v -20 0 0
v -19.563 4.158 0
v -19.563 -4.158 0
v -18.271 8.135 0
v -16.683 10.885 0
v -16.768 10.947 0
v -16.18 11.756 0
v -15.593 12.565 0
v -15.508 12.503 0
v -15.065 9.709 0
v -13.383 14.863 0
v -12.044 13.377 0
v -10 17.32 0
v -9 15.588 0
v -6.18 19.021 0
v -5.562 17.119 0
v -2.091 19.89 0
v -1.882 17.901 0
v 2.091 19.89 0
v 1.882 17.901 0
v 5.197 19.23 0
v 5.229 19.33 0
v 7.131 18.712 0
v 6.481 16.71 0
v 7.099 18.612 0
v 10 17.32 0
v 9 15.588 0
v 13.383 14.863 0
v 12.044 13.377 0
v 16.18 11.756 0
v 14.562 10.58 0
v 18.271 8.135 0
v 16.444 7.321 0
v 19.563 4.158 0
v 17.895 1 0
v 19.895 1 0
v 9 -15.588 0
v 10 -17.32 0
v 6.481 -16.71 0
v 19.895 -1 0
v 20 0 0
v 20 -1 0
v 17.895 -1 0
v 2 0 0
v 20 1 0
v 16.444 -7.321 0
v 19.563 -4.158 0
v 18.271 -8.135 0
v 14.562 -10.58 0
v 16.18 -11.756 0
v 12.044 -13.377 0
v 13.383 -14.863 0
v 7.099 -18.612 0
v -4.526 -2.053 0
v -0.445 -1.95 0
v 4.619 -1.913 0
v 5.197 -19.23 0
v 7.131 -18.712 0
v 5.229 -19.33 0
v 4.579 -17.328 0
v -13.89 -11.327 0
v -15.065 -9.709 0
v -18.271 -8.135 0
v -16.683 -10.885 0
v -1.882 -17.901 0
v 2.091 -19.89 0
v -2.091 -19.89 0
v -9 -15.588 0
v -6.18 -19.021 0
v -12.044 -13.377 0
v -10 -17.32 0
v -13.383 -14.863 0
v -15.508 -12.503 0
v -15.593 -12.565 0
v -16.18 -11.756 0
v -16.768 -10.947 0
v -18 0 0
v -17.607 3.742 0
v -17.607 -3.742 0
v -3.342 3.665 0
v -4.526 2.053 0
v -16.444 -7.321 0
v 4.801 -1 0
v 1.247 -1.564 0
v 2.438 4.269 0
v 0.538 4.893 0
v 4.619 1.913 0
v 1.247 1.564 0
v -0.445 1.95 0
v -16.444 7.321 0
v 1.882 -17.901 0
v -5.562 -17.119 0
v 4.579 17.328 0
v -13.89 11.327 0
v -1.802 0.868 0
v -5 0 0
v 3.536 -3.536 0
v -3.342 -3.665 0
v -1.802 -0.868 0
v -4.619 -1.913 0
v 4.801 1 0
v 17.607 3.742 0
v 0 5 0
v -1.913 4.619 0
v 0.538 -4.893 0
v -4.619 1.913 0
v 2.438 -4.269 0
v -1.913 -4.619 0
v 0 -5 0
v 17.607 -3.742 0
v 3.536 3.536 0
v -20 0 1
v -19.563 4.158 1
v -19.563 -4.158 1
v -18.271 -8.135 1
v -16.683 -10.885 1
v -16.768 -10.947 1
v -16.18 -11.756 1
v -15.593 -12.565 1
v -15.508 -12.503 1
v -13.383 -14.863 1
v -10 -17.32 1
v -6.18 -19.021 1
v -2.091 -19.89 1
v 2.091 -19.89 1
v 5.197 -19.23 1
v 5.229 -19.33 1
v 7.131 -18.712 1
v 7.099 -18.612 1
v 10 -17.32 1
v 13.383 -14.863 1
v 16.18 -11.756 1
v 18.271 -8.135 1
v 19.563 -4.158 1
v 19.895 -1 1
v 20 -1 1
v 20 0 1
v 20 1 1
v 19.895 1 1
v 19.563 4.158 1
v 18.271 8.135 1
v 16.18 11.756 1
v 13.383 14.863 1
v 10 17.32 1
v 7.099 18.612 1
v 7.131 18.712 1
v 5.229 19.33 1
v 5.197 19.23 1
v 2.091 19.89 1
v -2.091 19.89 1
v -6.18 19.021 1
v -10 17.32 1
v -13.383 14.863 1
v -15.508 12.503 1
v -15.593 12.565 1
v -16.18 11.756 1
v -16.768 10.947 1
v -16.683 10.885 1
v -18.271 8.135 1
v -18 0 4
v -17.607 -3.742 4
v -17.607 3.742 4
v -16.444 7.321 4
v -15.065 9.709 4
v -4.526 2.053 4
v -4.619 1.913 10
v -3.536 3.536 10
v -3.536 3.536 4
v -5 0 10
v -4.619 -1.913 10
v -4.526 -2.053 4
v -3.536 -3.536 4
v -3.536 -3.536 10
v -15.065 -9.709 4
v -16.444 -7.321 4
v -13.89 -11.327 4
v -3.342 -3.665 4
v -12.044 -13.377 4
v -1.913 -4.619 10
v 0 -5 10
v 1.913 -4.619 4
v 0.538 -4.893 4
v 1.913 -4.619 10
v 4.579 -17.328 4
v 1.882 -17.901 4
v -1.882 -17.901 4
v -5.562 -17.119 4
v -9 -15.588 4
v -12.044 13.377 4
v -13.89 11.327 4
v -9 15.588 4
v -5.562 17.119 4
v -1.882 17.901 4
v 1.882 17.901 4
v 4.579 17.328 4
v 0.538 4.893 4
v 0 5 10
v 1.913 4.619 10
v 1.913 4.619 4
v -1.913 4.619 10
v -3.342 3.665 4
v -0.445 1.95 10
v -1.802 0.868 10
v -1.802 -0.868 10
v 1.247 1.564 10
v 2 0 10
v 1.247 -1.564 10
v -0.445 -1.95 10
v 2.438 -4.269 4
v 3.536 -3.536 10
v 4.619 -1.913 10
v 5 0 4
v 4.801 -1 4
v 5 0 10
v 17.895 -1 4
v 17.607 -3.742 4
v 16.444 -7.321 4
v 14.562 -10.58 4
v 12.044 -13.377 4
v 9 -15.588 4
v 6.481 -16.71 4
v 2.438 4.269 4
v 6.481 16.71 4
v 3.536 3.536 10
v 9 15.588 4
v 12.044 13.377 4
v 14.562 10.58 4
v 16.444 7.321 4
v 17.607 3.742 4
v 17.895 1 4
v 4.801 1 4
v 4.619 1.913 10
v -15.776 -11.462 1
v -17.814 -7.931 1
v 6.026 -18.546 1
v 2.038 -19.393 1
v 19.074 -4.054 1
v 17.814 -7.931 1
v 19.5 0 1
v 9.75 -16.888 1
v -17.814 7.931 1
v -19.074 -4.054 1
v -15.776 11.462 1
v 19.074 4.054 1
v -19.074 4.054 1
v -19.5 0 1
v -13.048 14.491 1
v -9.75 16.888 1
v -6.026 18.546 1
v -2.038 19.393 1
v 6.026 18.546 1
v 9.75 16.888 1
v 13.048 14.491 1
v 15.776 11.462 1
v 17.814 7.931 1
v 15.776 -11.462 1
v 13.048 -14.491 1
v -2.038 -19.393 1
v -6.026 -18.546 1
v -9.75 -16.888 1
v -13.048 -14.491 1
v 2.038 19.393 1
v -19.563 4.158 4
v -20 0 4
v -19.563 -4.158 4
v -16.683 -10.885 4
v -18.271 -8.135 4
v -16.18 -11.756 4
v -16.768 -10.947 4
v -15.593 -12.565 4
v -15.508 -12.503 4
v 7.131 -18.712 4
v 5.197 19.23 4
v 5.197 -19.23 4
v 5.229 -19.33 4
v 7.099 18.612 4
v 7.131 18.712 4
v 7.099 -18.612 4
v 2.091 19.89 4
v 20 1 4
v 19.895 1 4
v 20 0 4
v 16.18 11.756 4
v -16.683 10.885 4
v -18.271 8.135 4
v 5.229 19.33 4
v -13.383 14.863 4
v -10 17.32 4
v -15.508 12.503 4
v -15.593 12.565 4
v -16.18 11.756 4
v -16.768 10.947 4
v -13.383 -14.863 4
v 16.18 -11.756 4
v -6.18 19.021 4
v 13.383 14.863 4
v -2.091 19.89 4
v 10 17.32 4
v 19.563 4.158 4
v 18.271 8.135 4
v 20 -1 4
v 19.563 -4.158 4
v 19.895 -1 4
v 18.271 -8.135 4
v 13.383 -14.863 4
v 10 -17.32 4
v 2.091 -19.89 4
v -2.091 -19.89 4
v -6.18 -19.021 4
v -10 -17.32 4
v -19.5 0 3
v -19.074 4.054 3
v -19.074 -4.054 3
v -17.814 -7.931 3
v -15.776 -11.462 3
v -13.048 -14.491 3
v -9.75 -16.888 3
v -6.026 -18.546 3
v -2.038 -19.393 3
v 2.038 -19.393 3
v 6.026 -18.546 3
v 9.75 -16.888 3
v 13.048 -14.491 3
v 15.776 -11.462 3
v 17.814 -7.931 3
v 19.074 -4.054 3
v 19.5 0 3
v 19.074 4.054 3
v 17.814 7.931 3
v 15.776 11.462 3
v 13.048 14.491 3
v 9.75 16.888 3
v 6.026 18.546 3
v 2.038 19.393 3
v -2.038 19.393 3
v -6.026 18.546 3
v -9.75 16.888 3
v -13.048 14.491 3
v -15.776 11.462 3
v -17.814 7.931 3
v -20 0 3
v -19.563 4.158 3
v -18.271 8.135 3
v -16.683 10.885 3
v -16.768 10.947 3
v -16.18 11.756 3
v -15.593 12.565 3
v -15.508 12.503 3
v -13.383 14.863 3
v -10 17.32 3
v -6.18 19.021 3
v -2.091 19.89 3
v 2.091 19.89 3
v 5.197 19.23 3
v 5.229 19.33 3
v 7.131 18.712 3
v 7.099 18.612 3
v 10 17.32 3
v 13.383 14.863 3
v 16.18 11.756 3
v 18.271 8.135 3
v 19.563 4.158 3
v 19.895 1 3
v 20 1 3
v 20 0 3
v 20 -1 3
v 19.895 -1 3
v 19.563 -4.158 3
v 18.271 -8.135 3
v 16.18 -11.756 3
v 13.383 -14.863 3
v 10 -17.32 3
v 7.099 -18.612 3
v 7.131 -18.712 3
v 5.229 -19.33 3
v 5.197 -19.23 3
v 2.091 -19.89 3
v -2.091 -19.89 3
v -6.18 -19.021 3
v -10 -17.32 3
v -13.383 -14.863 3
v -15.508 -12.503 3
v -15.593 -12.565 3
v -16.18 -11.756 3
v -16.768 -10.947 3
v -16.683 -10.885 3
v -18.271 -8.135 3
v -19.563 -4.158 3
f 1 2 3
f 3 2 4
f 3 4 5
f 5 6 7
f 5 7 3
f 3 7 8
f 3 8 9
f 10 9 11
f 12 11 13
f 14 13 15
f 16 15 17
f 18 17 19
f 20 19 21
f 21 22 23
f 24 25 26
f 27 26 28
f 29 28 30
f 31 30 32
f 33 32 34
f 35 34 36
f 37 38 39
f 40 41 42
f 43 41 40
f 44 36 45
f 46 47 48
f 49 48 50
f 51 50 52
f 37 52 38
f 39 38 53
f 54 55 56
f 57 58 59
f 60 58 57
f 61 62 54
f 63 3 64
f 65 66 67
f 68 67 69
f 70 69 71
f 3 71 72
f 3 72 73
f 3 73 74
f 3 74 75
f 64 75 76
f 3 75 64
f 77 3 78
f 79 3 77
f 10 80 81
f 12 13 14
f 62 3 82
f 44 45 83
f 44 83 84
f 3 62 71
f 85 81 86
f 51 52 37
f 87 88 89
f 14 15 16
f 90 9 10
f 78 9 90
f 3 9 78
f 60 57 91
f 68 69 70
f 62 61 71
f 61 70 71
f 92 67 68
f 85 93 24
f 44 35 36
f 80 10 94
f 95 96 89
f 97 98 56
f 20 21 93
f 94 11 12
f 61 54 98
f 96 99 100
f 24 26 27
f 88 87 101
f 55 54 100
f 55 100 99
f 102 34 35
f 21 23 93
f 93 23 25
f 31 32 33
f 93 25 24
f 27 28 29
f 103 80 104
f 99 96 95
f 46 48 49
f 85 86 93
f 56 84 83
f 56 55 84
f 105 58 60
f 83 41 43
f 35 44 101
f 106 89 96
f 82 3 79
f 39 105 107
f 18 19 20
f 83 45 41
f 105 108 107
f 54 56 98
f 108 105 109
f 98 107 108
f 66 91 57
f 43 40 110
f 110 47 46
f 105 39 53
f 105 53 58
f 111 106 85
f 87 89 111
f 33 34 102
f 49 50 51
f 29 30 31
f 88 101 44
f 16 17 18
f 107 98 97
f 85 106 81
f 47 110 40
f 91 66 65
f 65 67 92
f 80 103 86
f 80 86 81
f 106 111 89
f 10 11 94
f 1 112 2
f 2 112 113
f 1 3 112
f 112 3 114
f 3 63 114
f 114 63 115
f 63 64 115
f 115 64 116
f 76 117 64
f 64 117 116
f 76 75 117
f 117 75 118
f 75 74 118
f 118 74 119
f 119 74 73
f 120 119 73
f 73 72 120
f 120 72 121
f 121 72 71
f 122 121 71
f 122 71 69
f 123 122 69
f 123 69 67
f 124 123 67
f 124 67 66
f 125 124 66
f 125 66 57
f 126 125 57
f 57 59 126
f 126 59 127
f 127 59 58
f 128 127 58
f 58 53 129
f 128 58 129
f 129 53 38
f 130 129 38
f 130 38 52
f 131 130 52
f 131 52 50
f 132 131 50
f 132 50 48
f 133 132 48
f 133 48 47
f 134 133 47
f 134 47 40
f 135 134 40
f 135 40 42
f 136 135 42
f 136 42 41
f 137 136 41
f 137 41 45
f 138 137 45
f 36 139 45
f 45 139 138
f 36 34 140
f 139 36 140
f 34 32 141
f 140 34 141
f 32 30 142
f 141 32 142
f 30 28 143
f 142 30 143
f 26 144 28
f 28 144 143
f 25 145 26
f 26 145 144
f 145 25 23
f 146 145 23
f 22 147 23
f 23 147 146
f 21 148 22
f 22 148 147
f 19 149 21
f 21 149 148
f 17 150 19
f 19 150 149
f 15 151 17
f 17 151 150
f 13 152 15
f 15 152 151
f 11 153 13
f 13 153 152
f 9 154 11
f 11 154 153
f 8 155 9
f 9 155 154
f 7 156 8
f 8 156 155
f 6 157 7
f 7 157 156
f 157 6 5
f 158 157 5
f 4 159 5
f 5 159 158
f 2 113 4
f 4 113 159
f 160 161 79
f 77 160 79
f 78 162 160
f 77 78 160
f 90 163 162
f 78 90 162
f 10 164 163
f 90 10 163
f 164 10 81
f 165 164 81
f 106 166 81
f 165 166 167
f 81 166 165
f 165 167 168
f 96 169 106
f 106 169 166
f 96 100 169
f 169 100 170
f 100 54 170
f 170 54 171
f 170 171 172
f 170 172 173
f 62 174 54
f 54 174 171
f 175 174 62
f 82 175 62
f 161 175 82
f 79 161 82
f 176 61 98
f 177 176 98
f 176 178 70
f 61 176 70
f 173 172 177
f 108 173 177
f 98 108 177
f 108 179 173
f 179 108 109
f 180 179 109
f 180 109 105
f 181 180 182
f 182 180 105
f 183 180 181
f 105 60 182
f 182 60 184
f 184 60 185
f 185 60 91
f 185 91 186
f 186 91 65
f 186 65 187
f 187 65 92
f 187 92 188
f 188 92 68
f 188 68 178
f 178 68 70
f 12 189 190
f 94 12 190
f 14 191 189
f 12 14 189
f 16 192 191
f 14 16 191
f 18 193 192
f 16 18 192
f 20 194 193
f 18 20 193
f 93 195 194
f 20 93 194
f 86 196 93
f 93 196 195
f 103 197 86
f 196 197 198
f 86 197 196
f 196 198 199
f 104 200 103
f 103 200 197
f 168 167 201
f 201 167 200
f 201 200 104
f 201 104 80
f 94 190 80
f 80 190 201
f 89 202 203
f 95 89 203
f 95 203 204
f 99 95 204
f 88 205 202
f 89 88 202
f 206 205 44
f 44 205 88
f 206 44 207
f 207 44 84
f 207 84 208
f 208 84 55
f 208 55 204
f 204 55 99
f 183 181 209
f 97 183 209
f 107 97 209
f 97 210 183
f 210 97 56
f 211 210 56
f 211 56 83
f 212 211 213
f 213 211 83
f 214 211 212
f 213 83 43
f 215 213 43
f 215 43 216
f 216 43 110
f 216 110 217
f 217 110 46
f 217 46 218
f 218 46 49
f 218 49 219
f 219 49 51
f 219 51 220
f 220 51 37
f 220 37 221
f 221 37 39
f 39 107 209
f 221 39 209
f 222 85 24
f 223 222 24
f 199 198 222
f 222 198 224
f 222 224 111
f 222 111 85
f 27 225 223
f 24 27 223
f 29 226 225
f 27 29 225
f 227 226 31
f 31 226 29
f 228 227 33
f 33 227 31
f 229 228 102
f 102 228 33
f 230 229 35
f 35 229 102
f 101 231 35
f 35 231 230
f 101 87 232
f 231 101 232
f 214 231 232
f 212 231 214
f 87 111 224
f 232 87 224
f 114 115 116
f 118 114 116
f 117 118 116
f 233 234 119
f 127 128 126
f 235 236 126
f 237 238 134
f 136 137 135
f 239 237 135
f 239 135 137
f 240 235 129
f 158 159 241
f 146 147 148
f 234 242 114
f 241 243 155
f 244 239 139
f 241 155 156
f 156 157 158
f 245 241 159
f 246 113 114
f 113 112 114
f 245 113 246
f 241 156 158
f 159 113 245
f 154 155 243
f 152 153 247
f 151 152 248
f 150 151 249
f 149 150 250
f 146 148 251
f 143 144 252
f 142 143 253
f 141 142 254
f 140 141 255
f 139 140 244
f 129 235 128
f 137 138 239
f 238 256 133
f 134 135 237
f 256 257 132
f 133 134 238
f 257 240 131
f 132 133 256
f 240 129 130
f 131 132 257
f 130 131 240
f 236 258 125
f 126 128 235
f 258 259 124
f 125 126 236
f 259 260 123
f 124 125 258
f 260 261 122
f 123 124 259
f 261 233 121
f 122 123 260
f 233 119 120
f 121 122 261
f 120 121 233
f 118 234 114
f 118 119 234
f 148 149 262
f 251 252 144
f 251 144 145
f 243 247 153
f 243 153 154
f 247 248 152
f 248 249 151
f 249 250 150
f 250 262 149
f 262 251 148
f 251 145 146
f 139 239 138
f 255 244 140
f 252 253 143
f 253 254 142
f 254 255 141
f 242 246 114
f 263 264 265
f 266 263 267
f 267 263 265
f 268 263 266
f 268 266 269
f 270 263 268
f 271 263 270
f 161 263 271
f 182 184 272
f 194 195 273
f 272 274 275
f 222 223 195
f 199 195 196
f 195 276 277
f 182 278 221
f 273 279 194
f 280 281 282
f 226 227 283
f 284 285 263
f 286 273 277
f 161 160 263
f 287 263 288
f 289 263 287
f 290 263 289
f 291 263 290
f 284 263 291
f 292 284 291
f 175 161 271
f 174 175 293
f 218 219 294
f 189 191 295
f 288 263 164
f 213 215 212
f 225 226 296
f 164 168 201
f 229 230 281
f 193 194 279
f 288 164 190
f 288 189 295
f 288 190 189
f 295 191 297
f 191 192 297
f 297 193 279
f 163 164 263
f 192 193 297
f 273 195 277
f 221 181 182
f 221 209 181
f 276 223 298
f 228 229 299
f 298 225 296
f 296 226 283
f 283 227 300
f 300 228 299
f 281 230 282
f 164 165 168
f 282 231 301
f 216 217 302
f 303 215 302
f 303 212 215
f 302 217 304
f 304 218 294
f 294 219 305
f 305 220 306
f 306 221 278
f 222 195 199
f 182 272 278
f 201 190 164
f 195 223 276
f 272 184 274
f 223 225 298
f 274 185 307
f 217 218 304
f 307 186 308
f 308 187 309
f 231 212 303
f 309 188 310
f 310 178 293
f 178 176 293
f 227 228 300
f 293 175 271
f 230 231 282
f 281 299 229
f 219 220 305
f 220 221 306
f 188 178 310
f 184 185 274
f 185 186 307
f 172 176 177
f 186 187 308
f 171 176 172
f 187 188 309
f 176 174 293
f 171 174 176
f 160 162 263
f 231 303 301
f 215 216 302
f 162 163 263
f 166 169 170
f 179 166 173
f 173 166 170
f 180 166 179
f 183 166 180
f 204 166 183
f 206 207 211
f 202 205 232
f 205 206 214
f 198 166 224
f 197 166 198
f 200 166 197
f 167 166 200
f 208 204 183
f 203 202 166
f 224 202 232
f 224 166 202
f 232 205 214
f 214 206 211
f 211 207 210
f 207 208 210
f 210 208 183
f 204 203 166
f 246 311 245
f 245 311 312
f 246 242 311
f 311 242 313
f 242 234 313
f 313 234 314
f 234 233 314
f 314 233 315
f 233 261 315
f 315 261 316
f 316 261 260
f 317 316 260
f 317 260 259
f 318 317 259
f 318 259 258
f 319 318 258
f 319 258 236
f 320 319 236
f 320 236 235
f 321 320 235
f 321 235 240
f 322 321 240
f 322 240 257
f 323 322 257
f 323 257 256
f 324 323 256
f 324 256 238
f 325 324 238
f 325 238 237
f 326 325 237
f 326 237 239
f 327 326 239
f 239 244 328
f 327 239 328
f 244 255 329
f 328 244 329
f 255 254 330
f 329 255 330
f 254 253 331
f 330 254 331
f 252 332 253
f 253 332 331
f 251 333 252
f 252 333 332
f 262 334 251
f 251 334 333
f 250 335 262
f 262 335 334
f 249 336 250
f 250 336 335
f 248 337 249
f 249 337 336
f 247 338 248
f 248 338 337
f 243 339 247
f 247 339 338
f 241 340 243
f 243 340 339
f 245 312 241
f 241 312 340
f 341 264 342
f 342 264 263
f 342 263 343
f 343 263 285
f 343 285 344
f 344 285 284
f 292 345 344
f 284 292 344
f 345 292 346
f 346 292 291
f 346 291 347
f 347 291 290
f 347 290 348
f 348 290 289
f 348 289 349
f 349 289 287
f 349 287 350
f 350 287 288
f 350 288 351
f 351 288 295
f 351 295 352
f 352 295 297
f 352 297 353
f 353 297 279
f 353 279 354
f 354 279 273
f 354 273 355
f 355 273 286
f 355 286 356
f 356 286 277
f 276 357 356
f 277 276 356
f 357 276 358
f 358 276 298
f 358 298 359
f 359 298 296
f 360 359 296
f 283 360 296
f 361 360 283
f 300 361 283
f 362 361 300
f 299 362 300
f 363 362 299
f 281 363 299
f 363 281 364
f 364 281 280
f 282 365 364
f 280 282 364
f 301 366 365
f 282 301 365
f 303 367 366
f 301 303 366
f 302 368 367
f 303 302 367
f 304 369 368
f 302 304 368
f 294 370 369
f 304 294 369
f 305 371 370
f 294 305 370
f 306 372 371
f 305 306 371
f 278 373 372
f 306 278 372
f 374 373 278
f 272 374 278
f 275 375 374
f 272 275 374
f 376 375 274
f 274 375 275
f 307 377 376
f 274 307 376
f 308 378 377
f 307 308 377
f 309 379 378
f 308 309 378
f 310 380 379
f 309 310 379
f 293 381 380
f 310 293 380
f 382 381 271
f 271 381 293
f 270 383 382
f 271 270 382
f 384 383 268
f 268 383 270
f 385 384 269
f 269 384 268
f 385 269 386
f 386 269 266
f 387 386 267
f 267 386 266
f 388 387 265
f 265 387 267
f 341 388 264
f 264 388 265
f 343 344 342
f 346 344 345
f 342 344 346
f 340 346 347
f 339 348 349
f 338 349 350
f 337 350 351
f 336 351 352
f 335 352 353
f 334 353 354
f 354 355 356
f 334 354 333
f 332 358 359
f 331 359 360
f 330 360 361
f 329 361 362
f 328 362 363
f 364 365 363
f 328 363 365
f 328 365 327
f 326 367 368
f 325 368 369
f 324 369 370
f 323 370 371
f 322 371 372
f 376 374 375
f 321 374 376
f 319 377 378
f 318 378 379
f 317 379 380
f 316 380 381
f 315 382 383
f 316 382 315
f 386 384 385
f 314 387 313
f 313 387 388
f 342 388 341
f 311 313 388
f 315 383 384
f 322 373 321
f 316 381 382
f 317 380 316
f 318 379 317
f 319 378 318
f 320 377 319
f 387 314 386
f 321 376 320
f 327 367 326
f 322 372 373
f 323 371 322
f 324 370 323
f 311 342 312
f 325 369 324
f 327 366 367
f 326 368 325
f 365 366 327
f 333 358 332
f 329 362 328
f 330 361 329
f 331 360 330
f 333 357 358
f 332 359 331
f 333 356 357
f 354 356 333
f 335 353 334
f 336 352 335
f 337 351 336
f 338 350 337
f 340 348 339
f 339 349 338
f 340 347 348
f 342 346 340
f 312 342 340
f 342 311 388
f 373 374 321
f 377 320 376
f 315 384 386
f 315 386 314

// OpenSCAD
//wheel
d=40;//diameter
hmount=10;//width of inner ring
dmount=4;//diameter of inner ring
spikes=5;
//wheel
difference(){
	union(){
		//outer ring
		difference(){
			cylinder(d=d,h=4);
			translate([0,0,-0.1])
			cylinder(d=(d-4),h=5);
		}
		difference(){
			//spikes
			union(){
				for (i=[0:360/spikes:360]){
					rotate(i,[0,0,1])
					translate([0,-1,0])
					cube([d/2,2,4]);
				}
				//inner ring
				cylinder(d=dmount+6,h=hmount);
			}
			//mount
			translate([0,0,-1])
			cylinder(d=dmount,h=hmount+2);
		}	
	}
	//rubber mount
	translate([0,0,1]){
		difference(){
			cylinder(d=d+1,h=2);
			cylinder(d=d-1,h=2);
		}
	}
}
